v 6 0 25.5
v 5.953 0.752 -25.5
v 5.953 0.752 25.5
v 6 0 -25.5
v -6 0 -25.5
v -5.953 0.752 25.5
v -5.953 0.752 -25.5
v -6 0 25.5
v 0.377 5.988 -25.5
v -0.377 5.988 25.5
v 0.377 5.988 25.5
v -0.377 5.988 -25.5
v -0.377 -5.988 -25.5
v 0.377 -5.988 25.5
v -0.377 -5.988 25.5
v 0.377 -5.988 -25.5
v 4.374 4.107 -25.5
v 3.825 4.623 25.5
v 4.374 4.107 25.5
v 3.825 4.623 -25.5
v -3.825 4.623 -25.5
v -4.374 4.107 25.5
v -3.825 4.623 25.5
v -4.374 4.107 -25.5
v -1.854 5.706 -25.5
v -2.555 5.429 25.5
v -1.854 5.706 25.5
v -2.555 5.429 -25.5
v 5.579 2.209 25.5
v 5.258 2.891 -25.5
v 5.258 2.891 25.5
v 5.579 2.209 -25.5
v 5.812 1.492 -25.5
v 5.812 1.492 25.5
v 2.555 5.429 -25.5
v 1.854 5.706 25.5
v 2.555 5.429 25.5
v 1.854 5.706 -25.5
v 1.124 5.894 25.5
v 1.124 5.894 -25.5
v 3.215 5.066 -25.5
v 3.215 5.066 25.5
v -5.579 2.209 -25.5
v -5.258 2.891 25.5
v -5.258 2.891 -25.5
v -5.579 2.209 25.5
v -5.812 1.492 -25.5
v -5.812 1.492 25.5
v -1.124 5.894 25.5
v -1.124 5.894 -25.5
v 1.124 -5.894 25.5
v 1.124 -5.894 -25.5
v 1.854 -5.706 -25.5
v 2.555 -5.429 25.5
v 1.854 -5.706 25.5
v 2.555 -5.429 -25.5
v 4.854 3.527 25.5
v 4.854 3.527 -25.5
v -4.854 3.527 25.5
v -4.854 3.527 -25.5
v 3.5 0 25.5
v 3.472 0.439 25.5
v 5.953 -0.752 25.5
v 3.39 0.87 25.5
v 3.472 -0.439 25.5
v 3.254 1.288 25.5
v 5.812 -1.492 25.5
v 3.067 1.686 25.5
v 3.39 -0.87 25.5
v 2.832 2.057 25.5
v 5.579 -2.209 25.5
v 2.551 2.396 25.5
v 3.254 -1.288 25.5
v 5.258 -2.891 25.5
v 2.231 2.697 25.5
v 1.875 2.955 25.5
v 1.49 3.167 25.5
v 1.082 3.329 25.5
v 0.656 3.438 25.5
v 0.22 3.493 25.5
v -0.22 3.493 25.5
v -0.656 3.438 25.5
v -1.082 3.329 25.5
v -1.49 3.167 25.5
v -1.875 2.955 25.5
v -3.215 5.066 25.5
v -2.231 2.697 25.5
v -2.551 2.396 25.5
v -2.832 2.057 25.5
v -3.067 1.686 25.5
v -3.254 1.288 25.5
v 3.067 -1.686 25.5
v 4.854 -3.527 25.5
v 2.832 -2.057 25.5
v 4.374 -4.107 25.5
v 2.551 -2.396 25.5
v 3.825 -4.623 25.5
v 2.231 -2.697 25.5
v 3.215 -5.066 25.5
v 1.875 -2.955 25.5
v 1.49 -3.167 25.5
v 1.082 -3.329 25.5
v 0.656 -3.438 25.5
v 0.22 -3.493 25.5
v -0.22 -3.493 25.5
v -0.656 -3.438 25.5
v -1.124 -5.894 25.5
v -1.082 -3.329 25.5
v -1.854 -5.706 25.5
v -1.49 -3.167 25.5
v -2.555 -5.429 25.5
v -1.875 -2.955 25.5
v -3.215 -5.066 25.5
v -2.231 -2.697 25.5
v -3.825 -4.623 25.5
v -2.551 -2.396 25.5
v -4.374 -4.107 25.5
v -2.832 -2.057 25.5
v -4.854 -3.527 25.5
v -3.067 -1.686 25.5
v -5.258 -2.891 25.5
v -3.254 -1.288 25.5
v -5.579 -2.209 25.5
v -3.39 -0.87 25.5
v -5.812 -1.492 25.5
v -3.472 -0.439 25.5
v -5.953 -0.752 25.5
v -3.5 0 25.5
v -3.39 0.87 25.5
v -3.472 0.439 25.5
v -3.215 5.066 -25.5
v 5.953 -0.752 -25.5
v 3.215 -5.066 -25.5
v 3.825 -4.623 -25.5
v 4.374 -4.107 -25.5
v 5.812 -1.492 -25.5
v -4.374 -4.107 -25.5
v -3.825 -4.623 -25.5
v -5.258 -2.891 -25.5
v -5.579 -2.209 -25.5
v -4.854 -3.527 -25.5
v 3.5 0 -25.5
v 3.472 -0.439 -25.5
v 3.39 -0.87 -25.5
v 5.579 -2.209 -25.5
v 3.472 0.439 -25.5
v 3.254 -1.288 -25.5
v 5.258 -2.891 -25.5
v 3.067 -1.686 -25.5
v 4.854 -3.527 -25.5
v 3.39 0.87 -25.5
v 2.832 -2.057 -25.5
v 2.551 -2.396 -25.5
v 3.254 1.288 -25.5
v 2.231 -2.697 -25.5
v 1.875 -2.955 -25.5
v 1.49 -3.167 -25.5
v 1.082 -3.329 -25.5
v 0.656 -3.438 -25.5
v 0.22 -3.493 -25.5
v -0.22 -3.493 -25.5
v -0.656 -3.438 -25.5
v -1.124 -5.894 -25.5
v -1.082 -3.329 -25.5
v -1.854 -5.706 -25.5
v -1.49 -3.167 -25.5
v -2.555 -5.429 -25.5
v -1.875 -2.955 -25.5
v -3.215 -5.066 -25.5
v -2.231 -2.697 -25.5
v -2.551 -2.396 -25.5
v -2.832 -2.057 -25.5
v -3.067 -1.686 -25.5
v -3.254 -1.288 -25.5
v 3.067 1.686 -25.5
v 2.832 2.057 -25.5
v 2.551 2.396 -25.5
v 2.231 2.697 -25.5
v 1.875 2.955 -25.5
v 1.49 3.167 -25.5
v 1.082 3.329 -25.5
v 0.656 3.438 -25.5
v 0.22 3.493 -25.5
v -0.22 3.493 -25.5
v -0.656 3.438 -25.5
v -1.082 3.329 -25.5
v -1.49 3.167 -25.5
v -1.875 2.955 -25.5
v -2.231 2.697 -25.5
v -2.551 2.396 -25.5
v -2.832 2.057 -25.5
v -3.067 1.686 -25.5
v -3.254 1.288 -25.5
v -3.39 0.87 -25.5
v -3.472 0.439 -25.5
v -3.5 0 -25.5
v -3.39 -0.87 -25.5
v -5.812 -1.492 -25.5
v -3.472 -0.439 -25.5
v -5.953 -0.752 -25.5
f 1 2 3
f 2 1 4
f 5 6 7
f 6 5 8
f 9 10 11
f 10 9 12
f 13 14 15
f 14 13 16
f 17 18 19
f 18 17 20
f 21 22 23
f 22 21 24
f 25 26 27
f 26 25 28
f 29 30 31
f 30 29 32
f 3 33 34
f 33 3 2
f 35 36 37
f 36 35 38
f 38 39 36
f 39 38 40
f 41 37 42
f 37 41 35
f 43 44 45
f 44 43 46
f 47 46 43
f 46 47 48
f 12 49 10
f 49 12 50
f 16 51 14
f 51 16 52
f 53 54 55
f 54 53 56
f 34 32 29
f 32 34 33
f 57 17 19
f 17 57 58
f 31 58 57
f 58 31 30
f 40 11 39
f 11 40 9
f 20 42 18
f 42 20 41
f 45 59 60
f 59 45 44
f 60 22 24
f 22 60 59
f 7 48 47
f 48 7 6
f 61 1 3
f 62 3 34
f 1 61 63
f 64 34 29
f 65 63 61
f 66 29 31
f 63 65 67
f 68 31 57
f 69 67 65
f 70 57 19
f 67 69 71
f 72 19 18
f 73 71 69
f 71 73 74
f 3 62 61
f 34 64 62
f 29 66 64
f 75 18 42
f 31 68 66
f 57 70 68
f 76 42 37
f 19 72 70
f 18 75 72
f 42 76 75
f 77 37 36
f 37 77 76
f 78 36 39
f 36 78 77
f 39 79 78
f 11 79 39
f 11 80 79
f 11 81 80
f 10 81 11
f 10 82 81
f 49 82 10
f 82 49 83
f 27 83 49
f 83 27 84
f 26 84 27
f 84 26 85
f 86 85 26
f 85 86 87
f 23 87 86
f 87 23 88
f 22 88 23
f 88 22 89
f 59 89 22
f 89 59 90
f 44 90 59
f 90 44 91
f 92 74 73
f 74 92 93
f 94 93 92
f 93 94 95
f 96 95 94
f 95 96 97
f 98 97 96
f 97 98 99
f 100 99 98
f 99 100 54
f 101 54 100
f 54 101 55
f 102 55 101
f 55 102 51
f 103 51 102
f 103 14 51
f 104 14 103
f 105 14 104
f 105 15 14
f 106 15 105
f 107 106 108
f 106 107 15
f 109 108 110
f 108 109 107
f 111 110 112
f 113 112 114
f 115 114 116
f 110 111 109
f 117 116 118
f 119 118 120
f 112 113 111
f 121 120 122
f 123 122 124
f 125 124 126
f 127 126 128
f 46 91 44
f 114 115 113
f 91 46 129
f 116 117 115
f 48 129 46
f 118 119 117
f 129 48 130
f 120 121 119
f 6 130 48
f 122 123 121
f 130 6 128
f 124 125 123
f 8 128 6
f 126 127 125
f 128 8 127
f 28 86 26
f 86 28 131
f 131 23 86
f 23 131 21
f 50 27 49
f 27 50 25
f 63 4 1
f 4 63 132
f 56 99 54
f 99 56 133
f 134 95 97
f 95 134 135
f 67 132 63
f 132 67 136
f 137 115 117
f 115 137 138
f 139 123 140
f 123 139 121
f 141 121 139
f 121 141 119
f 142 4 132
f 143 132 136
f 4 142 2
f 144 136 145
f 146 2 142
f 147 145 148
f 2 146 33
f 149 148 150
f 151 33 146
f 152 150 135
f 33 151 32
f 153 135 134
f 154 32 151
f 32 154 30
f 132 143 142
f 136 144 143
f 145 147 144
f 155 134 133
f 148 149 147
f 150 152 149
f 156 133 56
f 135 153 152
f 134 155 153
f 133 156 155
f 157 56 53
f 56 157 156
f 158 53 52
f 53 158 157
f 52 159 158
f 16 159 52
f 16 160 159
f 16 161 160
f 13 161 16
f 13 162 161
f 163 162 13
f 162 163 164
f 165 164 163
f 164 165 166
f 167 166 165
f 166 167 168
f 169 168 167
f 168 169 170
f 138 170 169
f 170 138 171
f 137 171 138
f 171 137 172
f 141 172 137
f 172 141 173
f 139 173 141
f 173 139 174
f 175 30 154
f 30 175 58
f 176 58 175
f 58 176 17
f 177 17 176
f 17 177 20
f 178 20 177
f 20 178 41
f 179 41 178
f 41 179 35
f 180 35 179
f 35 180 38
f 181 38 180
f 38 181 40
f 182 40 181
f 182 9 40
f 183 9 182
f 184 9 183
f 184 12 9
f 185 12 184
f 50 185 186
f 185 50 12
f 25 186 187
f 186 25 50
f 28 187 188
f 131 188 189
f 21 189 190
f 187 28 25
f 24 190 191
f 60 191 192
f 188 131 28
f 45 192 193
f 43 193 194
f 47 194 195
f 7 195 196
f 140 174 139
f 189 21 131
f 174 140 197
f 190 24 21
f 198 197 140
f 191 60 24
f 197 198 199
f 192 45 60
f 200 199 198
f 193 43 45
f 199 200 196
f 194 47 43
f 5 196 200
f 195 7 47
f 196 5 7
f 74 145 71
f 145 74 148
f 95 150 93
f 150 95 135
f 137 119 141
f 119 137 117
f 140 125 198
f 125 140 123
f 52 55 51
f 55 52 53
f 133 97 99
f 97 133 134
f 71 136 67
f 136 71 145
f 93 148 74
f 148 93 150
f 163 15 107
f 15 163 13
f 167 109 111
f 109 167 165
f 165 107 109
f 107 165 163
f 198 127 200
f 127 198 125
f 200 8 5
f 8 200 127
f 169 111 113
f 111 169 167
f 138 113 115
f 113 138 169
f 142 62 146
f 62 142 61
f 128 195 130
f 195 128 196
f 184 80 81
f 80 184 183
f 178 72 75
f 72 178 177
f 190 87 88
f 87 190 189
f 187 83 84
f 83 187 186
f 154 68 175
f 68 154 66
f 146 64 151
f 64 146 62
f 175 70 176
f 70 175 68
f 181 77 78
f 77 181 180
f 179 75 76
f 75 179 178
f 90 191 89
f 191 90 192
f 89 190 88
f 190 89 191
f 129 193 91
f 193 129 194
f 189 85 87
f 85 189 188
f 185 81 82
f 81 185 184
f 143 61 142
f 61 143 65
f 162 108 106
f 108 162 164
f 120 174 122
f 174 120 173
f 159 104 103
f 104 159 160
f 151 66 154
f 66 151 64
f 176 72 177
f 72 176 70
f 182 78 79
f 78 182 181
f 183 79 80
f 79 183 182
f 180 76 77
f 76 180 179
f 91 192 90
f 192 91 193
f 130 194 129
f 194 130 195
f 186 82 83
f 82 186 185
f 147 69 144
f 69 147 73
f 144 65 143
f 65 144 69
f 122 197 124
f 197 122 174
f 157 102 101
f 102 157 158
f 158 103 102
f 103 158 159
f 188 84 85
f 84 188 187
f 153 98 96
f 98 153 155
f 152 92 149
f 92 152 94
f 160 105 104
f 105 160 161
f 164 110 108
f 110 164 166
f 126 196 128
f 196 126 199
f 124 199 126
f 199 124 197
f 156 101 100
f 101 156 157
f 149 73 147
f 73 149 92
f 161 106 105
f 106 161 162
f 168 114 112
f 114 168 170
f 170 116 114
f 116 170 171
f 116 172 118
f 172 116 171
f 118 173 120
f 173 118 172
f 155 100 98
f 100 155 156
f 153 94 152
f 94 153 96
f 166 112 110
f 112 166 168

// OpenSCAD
$fn = 50;


difference() {
	union() {
		translate(v = [0, 0, -25.5000000000]) {
			cylinder(h = 51, r = 6.0000000000);
		}
	}
	union() {
		translate(v = [0, 0, -100.0000000000]) {
			cylinder(h = 200, r = 3.5000000000);
		}
	}
}
